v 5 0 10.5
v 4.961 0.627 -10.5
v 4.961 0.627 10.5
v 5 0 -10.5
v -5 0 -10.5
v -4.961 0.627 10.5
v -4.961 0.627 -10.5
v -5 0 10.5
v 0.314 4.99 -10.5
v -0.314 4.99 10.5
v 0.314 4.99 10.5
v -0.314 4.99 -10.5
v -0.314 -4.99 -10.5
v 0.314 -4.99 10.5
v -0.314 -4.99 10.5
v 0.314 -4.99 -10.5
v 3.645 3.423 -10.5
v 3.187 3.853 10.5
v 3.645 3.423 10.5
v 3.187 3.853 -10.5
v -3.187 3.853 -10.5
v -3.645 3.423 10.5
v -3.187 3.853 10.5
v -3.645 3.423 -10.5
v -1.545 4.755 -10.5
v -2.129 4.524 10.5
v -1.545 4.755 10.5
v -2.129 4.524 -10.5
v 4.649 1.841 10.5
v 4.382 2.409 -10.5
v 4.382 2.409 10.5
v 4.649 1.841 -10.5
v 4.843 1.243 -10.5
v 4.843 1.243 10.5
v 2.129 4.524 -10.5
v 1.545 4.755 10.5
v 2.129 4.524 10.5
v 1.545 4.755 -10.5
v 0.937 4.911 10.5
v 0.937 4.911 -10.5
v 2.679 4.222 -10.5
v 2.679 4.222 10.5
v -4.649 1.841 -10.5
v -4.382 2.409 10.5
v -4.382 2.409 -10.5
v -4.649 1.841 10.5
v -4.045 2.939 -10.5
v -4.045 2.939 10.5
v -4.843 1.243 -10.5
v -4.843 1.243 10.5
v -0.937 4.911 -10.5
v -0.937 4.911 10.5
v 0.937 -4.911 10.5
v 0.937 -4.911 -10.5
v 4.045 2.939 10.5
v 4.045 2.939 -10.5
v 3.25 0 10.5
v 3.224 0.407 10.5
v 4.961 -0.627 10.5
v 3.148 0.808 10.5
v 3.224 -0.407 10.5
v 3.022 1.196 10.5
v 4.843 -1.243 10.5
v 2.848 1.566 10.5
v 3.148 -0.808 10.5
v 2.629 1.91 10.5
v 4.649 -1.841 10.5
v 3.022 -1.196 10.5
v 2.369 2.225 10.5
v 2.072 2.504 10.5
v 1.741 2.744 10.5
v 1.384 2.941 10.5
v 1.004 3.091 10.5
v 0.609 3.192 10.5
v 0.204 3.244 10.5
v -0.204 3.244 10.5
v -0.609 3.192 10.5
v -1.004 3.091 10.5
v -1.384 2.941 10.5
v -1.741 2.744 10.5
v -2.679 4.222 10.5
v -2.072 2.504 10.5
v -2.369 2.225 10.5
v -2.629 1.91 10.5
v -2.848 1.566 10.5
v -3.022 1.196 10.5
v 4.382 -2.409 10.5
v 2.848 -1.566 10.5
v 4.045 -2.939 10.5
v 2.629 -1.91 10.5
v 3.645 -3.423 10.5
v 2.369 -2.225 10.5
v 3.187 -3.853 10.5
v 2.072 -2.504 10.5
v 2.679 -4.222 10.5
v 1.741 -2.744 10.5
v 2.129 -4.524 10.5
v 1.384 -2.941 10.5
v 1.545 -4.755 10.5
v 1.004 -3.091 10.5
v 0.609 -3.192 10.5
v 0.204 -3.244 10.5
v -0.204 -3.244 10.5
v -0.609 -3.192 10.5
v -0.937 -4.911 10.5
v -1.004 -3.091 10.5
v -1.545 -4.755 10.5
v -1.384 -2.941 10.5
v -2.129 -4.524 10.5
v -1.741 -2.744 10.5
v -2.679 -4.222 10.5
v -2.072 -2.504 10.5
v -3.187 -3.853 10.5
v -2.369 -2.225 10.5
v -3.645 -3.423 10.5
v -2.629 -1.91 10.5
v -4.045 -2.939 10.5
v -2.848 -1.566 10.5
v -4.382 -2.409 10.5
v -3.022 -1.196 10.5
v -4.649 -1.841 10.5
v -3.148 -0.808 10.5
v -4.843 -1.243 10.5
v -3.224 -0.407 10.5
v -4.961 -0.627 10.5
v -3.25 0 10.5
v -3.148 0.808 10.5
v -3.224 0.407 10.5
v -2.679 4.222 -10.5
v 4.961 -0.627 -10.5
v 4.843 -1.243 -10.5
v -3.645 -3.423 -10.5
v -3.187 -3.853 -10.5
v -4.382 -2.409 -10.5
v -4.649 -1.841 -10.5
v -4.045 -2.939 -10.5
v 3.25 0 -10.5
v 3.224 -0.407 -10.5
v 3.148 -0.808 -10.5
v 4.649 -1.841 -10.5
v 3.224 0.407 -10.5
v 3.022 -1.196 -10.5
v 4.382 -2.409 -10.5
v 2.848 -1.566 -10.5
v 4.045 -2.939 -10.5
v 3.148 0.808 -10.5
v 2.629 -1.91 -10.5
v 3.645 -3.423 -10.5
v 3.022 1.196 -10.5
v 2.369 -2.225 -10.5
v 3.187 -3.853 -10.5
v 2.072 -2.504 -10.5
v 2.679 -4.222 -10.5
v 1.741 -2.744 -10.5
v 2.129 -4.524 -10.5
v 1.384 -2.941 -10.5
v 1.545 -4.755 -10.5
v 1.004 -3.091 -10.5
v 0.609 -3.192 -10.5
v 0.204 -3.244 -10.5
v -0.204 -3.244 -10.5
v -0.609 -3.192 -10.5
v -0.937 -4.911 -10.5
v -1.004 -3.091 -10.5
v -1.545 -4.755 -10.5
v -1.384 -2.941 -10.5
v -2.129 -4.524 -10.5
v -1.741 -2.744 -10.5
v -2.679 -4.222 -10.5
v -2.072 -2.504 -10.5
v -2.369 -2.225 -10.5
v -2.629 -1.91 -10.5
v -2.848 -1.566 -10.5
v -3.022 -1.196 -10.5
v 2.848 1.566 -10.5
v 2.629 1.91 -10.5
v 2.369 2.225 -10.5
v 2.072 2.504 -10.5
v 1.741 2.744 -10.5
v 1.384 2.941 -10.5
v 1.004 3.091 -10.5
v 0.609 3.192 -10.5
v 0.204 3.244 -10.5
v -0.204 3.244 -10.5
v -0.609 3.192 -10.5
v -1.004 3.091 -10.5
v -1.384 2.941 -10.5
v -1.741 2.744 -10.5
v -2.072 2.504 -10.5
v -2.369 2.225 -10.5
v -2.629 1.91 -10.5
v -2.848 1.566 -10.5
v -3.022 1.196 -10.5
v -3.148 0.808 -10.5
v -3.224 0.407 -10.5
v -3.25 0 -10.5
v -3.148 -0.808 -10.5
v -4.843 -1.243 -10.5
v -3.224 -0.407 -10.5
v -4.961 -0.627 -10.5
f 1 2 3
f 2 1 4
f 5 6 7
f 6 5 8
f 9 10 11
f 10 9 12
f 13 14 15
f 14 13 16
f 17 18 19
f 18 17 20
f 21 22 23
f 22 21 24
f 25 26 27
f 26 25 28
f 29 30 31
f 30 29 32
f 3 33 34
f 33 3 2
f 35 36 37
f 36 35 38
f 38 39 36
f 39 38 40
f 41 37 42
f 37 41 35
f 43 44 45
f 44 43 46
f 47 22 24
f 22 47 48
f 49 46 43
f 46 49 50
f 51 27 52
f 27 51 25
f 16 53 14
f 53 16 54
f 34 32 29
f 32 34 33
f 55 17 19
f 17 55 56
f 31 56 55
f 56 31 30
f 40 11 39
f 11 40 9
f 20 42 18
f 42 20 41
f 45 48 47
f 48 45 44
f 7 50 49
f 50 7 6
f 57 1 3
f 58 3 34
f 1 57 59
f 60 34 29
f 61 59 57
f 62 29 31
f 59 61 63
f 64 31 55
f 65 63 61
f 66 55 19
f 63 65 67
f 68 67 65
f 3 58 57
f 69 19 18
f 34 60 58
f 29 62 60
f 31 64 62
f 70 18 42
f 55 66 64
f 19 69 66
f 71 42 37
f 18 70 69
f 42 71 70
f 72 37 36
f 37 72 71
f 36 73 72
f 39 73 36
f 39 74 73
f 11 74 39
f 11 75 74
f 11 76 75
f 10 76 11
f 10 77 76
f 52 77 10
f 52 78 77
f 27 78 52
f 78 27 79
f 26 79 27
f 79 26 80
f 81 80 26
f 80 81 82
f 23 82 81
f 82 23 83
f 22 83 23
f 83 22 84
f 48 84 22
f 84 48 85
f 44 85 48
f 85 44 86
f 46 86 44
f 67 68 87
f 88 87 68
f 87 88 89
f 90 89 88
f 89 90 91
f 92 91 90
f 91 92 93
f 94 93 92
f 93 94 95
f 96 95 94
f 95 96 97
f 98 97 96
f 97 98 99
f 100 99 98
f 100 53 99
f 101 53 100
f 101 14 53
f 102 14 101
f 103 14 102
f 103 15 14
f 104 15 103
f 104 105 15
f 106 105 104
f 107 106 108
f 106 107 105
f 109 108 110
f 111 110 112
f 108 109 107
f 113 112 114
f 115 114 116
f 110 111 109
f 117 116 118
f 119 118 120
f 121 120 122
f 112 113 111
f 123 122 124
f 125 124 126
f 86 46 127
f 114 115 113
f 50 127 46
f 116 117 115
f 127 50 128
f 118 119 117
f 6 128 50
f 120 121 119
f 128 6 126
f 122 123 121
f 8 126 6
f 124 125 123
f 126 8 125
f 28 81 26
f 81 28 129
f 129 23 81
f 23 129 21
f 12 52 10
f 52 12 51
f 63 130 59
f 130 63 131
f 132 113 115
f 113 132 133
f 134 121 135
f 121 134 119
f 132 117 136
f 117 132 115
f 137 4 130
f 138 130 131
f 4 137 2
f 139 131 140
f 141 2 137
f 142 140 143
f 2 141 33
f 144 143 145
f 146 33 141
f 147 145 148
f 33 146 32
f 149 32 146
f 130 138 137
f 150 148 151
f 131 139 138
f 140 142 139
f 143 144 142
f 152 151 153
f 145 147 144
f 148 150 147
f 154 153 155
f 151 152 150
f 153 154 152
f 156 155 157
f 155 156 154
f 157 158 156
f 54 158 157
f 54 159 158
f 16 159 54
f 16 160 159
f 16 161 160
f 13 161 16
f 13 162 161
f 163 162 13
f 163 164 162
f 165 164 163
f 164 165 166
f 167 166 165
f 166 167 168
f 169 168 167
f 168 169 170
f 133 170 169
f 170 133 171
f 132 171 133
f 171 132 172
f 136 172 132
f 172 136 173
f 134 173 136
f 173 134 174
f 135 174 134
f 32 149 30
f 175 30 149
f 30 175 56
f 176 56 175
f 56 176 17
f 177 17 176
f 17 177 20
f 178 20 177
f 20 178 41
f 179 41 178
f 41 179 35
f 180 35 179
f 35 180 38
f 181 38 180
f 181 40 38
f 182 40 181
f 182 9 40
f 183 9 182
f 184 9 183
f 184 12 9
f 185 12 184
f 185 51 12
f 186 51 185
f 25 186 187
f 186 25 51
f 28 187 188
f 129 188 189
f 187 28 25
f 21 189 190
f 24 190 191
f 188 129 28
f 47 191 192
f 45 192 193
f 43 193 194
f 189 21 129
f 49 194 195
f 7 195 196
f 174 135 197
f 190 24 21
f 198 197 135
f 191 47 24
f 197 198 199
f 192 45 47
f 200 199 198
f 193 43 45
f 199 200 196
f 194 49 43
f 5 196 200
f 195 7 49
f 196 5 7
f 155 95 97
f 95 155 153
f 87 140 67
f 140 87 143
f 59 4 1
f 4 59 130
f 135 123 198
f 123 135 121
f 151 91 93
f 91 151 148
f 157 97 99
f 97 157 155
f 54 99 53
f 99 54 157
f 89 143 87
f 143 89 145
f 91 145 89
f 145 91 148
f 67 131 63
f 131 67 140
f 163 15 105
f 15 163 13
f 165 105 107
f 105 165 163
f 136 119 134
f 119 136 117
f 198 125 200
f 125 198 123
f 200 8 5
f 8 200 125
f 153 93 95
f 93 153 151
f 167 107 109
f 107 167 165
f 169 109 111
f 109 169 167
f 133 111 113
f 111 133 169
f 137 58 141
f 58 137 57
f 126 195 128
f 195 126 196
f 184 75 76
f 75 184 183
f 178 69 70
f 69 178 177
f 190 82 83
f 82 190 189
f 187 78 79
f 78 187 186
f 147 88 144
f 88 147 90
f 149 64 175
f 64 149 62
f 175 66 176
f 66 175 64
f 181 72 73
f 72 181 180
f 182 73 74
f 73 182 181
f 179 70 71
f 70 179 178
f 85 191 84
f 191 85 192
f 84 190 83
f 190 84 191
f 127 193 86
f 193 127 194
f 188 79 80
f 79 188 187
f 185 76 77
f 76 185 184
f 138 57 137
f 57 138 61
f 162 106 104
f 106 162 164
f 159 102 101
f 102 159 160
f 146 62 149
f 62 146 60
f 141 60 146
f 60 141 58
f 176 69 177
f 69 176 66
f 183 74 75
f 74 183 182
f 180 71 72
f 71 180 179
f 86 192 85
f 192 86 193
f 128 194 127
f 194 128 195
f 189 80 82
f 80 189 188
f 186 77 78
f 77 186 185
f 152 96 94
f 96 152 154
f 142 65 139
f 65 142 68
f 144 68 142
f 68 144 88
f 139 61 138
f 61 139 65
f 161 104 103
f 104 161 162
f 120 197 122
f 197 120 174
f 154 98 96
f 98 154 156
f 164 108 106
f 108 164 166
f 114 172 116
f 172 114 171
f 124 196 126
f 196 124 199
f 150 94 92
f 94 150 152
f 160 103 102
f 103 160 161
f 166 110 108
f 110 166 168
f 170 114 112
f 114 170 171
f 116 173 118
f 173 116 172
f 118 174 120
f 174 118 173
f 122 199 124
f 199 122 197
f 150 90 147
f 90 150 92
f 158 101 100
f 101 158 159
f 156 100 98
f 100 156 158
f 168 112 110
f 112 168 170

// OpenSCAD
$fn = 50;


difference() {
	union() {
		translate(v = [0, 0, -10.5000000000]) {
			cylinder(h = 21, r = 5.0000000000);
		}
	}
	union() {
		translate(v = [0, 0, -100.0000000000]) {
			cylinder(h = 200, r = 3.2500000000);
		}
	}
}
